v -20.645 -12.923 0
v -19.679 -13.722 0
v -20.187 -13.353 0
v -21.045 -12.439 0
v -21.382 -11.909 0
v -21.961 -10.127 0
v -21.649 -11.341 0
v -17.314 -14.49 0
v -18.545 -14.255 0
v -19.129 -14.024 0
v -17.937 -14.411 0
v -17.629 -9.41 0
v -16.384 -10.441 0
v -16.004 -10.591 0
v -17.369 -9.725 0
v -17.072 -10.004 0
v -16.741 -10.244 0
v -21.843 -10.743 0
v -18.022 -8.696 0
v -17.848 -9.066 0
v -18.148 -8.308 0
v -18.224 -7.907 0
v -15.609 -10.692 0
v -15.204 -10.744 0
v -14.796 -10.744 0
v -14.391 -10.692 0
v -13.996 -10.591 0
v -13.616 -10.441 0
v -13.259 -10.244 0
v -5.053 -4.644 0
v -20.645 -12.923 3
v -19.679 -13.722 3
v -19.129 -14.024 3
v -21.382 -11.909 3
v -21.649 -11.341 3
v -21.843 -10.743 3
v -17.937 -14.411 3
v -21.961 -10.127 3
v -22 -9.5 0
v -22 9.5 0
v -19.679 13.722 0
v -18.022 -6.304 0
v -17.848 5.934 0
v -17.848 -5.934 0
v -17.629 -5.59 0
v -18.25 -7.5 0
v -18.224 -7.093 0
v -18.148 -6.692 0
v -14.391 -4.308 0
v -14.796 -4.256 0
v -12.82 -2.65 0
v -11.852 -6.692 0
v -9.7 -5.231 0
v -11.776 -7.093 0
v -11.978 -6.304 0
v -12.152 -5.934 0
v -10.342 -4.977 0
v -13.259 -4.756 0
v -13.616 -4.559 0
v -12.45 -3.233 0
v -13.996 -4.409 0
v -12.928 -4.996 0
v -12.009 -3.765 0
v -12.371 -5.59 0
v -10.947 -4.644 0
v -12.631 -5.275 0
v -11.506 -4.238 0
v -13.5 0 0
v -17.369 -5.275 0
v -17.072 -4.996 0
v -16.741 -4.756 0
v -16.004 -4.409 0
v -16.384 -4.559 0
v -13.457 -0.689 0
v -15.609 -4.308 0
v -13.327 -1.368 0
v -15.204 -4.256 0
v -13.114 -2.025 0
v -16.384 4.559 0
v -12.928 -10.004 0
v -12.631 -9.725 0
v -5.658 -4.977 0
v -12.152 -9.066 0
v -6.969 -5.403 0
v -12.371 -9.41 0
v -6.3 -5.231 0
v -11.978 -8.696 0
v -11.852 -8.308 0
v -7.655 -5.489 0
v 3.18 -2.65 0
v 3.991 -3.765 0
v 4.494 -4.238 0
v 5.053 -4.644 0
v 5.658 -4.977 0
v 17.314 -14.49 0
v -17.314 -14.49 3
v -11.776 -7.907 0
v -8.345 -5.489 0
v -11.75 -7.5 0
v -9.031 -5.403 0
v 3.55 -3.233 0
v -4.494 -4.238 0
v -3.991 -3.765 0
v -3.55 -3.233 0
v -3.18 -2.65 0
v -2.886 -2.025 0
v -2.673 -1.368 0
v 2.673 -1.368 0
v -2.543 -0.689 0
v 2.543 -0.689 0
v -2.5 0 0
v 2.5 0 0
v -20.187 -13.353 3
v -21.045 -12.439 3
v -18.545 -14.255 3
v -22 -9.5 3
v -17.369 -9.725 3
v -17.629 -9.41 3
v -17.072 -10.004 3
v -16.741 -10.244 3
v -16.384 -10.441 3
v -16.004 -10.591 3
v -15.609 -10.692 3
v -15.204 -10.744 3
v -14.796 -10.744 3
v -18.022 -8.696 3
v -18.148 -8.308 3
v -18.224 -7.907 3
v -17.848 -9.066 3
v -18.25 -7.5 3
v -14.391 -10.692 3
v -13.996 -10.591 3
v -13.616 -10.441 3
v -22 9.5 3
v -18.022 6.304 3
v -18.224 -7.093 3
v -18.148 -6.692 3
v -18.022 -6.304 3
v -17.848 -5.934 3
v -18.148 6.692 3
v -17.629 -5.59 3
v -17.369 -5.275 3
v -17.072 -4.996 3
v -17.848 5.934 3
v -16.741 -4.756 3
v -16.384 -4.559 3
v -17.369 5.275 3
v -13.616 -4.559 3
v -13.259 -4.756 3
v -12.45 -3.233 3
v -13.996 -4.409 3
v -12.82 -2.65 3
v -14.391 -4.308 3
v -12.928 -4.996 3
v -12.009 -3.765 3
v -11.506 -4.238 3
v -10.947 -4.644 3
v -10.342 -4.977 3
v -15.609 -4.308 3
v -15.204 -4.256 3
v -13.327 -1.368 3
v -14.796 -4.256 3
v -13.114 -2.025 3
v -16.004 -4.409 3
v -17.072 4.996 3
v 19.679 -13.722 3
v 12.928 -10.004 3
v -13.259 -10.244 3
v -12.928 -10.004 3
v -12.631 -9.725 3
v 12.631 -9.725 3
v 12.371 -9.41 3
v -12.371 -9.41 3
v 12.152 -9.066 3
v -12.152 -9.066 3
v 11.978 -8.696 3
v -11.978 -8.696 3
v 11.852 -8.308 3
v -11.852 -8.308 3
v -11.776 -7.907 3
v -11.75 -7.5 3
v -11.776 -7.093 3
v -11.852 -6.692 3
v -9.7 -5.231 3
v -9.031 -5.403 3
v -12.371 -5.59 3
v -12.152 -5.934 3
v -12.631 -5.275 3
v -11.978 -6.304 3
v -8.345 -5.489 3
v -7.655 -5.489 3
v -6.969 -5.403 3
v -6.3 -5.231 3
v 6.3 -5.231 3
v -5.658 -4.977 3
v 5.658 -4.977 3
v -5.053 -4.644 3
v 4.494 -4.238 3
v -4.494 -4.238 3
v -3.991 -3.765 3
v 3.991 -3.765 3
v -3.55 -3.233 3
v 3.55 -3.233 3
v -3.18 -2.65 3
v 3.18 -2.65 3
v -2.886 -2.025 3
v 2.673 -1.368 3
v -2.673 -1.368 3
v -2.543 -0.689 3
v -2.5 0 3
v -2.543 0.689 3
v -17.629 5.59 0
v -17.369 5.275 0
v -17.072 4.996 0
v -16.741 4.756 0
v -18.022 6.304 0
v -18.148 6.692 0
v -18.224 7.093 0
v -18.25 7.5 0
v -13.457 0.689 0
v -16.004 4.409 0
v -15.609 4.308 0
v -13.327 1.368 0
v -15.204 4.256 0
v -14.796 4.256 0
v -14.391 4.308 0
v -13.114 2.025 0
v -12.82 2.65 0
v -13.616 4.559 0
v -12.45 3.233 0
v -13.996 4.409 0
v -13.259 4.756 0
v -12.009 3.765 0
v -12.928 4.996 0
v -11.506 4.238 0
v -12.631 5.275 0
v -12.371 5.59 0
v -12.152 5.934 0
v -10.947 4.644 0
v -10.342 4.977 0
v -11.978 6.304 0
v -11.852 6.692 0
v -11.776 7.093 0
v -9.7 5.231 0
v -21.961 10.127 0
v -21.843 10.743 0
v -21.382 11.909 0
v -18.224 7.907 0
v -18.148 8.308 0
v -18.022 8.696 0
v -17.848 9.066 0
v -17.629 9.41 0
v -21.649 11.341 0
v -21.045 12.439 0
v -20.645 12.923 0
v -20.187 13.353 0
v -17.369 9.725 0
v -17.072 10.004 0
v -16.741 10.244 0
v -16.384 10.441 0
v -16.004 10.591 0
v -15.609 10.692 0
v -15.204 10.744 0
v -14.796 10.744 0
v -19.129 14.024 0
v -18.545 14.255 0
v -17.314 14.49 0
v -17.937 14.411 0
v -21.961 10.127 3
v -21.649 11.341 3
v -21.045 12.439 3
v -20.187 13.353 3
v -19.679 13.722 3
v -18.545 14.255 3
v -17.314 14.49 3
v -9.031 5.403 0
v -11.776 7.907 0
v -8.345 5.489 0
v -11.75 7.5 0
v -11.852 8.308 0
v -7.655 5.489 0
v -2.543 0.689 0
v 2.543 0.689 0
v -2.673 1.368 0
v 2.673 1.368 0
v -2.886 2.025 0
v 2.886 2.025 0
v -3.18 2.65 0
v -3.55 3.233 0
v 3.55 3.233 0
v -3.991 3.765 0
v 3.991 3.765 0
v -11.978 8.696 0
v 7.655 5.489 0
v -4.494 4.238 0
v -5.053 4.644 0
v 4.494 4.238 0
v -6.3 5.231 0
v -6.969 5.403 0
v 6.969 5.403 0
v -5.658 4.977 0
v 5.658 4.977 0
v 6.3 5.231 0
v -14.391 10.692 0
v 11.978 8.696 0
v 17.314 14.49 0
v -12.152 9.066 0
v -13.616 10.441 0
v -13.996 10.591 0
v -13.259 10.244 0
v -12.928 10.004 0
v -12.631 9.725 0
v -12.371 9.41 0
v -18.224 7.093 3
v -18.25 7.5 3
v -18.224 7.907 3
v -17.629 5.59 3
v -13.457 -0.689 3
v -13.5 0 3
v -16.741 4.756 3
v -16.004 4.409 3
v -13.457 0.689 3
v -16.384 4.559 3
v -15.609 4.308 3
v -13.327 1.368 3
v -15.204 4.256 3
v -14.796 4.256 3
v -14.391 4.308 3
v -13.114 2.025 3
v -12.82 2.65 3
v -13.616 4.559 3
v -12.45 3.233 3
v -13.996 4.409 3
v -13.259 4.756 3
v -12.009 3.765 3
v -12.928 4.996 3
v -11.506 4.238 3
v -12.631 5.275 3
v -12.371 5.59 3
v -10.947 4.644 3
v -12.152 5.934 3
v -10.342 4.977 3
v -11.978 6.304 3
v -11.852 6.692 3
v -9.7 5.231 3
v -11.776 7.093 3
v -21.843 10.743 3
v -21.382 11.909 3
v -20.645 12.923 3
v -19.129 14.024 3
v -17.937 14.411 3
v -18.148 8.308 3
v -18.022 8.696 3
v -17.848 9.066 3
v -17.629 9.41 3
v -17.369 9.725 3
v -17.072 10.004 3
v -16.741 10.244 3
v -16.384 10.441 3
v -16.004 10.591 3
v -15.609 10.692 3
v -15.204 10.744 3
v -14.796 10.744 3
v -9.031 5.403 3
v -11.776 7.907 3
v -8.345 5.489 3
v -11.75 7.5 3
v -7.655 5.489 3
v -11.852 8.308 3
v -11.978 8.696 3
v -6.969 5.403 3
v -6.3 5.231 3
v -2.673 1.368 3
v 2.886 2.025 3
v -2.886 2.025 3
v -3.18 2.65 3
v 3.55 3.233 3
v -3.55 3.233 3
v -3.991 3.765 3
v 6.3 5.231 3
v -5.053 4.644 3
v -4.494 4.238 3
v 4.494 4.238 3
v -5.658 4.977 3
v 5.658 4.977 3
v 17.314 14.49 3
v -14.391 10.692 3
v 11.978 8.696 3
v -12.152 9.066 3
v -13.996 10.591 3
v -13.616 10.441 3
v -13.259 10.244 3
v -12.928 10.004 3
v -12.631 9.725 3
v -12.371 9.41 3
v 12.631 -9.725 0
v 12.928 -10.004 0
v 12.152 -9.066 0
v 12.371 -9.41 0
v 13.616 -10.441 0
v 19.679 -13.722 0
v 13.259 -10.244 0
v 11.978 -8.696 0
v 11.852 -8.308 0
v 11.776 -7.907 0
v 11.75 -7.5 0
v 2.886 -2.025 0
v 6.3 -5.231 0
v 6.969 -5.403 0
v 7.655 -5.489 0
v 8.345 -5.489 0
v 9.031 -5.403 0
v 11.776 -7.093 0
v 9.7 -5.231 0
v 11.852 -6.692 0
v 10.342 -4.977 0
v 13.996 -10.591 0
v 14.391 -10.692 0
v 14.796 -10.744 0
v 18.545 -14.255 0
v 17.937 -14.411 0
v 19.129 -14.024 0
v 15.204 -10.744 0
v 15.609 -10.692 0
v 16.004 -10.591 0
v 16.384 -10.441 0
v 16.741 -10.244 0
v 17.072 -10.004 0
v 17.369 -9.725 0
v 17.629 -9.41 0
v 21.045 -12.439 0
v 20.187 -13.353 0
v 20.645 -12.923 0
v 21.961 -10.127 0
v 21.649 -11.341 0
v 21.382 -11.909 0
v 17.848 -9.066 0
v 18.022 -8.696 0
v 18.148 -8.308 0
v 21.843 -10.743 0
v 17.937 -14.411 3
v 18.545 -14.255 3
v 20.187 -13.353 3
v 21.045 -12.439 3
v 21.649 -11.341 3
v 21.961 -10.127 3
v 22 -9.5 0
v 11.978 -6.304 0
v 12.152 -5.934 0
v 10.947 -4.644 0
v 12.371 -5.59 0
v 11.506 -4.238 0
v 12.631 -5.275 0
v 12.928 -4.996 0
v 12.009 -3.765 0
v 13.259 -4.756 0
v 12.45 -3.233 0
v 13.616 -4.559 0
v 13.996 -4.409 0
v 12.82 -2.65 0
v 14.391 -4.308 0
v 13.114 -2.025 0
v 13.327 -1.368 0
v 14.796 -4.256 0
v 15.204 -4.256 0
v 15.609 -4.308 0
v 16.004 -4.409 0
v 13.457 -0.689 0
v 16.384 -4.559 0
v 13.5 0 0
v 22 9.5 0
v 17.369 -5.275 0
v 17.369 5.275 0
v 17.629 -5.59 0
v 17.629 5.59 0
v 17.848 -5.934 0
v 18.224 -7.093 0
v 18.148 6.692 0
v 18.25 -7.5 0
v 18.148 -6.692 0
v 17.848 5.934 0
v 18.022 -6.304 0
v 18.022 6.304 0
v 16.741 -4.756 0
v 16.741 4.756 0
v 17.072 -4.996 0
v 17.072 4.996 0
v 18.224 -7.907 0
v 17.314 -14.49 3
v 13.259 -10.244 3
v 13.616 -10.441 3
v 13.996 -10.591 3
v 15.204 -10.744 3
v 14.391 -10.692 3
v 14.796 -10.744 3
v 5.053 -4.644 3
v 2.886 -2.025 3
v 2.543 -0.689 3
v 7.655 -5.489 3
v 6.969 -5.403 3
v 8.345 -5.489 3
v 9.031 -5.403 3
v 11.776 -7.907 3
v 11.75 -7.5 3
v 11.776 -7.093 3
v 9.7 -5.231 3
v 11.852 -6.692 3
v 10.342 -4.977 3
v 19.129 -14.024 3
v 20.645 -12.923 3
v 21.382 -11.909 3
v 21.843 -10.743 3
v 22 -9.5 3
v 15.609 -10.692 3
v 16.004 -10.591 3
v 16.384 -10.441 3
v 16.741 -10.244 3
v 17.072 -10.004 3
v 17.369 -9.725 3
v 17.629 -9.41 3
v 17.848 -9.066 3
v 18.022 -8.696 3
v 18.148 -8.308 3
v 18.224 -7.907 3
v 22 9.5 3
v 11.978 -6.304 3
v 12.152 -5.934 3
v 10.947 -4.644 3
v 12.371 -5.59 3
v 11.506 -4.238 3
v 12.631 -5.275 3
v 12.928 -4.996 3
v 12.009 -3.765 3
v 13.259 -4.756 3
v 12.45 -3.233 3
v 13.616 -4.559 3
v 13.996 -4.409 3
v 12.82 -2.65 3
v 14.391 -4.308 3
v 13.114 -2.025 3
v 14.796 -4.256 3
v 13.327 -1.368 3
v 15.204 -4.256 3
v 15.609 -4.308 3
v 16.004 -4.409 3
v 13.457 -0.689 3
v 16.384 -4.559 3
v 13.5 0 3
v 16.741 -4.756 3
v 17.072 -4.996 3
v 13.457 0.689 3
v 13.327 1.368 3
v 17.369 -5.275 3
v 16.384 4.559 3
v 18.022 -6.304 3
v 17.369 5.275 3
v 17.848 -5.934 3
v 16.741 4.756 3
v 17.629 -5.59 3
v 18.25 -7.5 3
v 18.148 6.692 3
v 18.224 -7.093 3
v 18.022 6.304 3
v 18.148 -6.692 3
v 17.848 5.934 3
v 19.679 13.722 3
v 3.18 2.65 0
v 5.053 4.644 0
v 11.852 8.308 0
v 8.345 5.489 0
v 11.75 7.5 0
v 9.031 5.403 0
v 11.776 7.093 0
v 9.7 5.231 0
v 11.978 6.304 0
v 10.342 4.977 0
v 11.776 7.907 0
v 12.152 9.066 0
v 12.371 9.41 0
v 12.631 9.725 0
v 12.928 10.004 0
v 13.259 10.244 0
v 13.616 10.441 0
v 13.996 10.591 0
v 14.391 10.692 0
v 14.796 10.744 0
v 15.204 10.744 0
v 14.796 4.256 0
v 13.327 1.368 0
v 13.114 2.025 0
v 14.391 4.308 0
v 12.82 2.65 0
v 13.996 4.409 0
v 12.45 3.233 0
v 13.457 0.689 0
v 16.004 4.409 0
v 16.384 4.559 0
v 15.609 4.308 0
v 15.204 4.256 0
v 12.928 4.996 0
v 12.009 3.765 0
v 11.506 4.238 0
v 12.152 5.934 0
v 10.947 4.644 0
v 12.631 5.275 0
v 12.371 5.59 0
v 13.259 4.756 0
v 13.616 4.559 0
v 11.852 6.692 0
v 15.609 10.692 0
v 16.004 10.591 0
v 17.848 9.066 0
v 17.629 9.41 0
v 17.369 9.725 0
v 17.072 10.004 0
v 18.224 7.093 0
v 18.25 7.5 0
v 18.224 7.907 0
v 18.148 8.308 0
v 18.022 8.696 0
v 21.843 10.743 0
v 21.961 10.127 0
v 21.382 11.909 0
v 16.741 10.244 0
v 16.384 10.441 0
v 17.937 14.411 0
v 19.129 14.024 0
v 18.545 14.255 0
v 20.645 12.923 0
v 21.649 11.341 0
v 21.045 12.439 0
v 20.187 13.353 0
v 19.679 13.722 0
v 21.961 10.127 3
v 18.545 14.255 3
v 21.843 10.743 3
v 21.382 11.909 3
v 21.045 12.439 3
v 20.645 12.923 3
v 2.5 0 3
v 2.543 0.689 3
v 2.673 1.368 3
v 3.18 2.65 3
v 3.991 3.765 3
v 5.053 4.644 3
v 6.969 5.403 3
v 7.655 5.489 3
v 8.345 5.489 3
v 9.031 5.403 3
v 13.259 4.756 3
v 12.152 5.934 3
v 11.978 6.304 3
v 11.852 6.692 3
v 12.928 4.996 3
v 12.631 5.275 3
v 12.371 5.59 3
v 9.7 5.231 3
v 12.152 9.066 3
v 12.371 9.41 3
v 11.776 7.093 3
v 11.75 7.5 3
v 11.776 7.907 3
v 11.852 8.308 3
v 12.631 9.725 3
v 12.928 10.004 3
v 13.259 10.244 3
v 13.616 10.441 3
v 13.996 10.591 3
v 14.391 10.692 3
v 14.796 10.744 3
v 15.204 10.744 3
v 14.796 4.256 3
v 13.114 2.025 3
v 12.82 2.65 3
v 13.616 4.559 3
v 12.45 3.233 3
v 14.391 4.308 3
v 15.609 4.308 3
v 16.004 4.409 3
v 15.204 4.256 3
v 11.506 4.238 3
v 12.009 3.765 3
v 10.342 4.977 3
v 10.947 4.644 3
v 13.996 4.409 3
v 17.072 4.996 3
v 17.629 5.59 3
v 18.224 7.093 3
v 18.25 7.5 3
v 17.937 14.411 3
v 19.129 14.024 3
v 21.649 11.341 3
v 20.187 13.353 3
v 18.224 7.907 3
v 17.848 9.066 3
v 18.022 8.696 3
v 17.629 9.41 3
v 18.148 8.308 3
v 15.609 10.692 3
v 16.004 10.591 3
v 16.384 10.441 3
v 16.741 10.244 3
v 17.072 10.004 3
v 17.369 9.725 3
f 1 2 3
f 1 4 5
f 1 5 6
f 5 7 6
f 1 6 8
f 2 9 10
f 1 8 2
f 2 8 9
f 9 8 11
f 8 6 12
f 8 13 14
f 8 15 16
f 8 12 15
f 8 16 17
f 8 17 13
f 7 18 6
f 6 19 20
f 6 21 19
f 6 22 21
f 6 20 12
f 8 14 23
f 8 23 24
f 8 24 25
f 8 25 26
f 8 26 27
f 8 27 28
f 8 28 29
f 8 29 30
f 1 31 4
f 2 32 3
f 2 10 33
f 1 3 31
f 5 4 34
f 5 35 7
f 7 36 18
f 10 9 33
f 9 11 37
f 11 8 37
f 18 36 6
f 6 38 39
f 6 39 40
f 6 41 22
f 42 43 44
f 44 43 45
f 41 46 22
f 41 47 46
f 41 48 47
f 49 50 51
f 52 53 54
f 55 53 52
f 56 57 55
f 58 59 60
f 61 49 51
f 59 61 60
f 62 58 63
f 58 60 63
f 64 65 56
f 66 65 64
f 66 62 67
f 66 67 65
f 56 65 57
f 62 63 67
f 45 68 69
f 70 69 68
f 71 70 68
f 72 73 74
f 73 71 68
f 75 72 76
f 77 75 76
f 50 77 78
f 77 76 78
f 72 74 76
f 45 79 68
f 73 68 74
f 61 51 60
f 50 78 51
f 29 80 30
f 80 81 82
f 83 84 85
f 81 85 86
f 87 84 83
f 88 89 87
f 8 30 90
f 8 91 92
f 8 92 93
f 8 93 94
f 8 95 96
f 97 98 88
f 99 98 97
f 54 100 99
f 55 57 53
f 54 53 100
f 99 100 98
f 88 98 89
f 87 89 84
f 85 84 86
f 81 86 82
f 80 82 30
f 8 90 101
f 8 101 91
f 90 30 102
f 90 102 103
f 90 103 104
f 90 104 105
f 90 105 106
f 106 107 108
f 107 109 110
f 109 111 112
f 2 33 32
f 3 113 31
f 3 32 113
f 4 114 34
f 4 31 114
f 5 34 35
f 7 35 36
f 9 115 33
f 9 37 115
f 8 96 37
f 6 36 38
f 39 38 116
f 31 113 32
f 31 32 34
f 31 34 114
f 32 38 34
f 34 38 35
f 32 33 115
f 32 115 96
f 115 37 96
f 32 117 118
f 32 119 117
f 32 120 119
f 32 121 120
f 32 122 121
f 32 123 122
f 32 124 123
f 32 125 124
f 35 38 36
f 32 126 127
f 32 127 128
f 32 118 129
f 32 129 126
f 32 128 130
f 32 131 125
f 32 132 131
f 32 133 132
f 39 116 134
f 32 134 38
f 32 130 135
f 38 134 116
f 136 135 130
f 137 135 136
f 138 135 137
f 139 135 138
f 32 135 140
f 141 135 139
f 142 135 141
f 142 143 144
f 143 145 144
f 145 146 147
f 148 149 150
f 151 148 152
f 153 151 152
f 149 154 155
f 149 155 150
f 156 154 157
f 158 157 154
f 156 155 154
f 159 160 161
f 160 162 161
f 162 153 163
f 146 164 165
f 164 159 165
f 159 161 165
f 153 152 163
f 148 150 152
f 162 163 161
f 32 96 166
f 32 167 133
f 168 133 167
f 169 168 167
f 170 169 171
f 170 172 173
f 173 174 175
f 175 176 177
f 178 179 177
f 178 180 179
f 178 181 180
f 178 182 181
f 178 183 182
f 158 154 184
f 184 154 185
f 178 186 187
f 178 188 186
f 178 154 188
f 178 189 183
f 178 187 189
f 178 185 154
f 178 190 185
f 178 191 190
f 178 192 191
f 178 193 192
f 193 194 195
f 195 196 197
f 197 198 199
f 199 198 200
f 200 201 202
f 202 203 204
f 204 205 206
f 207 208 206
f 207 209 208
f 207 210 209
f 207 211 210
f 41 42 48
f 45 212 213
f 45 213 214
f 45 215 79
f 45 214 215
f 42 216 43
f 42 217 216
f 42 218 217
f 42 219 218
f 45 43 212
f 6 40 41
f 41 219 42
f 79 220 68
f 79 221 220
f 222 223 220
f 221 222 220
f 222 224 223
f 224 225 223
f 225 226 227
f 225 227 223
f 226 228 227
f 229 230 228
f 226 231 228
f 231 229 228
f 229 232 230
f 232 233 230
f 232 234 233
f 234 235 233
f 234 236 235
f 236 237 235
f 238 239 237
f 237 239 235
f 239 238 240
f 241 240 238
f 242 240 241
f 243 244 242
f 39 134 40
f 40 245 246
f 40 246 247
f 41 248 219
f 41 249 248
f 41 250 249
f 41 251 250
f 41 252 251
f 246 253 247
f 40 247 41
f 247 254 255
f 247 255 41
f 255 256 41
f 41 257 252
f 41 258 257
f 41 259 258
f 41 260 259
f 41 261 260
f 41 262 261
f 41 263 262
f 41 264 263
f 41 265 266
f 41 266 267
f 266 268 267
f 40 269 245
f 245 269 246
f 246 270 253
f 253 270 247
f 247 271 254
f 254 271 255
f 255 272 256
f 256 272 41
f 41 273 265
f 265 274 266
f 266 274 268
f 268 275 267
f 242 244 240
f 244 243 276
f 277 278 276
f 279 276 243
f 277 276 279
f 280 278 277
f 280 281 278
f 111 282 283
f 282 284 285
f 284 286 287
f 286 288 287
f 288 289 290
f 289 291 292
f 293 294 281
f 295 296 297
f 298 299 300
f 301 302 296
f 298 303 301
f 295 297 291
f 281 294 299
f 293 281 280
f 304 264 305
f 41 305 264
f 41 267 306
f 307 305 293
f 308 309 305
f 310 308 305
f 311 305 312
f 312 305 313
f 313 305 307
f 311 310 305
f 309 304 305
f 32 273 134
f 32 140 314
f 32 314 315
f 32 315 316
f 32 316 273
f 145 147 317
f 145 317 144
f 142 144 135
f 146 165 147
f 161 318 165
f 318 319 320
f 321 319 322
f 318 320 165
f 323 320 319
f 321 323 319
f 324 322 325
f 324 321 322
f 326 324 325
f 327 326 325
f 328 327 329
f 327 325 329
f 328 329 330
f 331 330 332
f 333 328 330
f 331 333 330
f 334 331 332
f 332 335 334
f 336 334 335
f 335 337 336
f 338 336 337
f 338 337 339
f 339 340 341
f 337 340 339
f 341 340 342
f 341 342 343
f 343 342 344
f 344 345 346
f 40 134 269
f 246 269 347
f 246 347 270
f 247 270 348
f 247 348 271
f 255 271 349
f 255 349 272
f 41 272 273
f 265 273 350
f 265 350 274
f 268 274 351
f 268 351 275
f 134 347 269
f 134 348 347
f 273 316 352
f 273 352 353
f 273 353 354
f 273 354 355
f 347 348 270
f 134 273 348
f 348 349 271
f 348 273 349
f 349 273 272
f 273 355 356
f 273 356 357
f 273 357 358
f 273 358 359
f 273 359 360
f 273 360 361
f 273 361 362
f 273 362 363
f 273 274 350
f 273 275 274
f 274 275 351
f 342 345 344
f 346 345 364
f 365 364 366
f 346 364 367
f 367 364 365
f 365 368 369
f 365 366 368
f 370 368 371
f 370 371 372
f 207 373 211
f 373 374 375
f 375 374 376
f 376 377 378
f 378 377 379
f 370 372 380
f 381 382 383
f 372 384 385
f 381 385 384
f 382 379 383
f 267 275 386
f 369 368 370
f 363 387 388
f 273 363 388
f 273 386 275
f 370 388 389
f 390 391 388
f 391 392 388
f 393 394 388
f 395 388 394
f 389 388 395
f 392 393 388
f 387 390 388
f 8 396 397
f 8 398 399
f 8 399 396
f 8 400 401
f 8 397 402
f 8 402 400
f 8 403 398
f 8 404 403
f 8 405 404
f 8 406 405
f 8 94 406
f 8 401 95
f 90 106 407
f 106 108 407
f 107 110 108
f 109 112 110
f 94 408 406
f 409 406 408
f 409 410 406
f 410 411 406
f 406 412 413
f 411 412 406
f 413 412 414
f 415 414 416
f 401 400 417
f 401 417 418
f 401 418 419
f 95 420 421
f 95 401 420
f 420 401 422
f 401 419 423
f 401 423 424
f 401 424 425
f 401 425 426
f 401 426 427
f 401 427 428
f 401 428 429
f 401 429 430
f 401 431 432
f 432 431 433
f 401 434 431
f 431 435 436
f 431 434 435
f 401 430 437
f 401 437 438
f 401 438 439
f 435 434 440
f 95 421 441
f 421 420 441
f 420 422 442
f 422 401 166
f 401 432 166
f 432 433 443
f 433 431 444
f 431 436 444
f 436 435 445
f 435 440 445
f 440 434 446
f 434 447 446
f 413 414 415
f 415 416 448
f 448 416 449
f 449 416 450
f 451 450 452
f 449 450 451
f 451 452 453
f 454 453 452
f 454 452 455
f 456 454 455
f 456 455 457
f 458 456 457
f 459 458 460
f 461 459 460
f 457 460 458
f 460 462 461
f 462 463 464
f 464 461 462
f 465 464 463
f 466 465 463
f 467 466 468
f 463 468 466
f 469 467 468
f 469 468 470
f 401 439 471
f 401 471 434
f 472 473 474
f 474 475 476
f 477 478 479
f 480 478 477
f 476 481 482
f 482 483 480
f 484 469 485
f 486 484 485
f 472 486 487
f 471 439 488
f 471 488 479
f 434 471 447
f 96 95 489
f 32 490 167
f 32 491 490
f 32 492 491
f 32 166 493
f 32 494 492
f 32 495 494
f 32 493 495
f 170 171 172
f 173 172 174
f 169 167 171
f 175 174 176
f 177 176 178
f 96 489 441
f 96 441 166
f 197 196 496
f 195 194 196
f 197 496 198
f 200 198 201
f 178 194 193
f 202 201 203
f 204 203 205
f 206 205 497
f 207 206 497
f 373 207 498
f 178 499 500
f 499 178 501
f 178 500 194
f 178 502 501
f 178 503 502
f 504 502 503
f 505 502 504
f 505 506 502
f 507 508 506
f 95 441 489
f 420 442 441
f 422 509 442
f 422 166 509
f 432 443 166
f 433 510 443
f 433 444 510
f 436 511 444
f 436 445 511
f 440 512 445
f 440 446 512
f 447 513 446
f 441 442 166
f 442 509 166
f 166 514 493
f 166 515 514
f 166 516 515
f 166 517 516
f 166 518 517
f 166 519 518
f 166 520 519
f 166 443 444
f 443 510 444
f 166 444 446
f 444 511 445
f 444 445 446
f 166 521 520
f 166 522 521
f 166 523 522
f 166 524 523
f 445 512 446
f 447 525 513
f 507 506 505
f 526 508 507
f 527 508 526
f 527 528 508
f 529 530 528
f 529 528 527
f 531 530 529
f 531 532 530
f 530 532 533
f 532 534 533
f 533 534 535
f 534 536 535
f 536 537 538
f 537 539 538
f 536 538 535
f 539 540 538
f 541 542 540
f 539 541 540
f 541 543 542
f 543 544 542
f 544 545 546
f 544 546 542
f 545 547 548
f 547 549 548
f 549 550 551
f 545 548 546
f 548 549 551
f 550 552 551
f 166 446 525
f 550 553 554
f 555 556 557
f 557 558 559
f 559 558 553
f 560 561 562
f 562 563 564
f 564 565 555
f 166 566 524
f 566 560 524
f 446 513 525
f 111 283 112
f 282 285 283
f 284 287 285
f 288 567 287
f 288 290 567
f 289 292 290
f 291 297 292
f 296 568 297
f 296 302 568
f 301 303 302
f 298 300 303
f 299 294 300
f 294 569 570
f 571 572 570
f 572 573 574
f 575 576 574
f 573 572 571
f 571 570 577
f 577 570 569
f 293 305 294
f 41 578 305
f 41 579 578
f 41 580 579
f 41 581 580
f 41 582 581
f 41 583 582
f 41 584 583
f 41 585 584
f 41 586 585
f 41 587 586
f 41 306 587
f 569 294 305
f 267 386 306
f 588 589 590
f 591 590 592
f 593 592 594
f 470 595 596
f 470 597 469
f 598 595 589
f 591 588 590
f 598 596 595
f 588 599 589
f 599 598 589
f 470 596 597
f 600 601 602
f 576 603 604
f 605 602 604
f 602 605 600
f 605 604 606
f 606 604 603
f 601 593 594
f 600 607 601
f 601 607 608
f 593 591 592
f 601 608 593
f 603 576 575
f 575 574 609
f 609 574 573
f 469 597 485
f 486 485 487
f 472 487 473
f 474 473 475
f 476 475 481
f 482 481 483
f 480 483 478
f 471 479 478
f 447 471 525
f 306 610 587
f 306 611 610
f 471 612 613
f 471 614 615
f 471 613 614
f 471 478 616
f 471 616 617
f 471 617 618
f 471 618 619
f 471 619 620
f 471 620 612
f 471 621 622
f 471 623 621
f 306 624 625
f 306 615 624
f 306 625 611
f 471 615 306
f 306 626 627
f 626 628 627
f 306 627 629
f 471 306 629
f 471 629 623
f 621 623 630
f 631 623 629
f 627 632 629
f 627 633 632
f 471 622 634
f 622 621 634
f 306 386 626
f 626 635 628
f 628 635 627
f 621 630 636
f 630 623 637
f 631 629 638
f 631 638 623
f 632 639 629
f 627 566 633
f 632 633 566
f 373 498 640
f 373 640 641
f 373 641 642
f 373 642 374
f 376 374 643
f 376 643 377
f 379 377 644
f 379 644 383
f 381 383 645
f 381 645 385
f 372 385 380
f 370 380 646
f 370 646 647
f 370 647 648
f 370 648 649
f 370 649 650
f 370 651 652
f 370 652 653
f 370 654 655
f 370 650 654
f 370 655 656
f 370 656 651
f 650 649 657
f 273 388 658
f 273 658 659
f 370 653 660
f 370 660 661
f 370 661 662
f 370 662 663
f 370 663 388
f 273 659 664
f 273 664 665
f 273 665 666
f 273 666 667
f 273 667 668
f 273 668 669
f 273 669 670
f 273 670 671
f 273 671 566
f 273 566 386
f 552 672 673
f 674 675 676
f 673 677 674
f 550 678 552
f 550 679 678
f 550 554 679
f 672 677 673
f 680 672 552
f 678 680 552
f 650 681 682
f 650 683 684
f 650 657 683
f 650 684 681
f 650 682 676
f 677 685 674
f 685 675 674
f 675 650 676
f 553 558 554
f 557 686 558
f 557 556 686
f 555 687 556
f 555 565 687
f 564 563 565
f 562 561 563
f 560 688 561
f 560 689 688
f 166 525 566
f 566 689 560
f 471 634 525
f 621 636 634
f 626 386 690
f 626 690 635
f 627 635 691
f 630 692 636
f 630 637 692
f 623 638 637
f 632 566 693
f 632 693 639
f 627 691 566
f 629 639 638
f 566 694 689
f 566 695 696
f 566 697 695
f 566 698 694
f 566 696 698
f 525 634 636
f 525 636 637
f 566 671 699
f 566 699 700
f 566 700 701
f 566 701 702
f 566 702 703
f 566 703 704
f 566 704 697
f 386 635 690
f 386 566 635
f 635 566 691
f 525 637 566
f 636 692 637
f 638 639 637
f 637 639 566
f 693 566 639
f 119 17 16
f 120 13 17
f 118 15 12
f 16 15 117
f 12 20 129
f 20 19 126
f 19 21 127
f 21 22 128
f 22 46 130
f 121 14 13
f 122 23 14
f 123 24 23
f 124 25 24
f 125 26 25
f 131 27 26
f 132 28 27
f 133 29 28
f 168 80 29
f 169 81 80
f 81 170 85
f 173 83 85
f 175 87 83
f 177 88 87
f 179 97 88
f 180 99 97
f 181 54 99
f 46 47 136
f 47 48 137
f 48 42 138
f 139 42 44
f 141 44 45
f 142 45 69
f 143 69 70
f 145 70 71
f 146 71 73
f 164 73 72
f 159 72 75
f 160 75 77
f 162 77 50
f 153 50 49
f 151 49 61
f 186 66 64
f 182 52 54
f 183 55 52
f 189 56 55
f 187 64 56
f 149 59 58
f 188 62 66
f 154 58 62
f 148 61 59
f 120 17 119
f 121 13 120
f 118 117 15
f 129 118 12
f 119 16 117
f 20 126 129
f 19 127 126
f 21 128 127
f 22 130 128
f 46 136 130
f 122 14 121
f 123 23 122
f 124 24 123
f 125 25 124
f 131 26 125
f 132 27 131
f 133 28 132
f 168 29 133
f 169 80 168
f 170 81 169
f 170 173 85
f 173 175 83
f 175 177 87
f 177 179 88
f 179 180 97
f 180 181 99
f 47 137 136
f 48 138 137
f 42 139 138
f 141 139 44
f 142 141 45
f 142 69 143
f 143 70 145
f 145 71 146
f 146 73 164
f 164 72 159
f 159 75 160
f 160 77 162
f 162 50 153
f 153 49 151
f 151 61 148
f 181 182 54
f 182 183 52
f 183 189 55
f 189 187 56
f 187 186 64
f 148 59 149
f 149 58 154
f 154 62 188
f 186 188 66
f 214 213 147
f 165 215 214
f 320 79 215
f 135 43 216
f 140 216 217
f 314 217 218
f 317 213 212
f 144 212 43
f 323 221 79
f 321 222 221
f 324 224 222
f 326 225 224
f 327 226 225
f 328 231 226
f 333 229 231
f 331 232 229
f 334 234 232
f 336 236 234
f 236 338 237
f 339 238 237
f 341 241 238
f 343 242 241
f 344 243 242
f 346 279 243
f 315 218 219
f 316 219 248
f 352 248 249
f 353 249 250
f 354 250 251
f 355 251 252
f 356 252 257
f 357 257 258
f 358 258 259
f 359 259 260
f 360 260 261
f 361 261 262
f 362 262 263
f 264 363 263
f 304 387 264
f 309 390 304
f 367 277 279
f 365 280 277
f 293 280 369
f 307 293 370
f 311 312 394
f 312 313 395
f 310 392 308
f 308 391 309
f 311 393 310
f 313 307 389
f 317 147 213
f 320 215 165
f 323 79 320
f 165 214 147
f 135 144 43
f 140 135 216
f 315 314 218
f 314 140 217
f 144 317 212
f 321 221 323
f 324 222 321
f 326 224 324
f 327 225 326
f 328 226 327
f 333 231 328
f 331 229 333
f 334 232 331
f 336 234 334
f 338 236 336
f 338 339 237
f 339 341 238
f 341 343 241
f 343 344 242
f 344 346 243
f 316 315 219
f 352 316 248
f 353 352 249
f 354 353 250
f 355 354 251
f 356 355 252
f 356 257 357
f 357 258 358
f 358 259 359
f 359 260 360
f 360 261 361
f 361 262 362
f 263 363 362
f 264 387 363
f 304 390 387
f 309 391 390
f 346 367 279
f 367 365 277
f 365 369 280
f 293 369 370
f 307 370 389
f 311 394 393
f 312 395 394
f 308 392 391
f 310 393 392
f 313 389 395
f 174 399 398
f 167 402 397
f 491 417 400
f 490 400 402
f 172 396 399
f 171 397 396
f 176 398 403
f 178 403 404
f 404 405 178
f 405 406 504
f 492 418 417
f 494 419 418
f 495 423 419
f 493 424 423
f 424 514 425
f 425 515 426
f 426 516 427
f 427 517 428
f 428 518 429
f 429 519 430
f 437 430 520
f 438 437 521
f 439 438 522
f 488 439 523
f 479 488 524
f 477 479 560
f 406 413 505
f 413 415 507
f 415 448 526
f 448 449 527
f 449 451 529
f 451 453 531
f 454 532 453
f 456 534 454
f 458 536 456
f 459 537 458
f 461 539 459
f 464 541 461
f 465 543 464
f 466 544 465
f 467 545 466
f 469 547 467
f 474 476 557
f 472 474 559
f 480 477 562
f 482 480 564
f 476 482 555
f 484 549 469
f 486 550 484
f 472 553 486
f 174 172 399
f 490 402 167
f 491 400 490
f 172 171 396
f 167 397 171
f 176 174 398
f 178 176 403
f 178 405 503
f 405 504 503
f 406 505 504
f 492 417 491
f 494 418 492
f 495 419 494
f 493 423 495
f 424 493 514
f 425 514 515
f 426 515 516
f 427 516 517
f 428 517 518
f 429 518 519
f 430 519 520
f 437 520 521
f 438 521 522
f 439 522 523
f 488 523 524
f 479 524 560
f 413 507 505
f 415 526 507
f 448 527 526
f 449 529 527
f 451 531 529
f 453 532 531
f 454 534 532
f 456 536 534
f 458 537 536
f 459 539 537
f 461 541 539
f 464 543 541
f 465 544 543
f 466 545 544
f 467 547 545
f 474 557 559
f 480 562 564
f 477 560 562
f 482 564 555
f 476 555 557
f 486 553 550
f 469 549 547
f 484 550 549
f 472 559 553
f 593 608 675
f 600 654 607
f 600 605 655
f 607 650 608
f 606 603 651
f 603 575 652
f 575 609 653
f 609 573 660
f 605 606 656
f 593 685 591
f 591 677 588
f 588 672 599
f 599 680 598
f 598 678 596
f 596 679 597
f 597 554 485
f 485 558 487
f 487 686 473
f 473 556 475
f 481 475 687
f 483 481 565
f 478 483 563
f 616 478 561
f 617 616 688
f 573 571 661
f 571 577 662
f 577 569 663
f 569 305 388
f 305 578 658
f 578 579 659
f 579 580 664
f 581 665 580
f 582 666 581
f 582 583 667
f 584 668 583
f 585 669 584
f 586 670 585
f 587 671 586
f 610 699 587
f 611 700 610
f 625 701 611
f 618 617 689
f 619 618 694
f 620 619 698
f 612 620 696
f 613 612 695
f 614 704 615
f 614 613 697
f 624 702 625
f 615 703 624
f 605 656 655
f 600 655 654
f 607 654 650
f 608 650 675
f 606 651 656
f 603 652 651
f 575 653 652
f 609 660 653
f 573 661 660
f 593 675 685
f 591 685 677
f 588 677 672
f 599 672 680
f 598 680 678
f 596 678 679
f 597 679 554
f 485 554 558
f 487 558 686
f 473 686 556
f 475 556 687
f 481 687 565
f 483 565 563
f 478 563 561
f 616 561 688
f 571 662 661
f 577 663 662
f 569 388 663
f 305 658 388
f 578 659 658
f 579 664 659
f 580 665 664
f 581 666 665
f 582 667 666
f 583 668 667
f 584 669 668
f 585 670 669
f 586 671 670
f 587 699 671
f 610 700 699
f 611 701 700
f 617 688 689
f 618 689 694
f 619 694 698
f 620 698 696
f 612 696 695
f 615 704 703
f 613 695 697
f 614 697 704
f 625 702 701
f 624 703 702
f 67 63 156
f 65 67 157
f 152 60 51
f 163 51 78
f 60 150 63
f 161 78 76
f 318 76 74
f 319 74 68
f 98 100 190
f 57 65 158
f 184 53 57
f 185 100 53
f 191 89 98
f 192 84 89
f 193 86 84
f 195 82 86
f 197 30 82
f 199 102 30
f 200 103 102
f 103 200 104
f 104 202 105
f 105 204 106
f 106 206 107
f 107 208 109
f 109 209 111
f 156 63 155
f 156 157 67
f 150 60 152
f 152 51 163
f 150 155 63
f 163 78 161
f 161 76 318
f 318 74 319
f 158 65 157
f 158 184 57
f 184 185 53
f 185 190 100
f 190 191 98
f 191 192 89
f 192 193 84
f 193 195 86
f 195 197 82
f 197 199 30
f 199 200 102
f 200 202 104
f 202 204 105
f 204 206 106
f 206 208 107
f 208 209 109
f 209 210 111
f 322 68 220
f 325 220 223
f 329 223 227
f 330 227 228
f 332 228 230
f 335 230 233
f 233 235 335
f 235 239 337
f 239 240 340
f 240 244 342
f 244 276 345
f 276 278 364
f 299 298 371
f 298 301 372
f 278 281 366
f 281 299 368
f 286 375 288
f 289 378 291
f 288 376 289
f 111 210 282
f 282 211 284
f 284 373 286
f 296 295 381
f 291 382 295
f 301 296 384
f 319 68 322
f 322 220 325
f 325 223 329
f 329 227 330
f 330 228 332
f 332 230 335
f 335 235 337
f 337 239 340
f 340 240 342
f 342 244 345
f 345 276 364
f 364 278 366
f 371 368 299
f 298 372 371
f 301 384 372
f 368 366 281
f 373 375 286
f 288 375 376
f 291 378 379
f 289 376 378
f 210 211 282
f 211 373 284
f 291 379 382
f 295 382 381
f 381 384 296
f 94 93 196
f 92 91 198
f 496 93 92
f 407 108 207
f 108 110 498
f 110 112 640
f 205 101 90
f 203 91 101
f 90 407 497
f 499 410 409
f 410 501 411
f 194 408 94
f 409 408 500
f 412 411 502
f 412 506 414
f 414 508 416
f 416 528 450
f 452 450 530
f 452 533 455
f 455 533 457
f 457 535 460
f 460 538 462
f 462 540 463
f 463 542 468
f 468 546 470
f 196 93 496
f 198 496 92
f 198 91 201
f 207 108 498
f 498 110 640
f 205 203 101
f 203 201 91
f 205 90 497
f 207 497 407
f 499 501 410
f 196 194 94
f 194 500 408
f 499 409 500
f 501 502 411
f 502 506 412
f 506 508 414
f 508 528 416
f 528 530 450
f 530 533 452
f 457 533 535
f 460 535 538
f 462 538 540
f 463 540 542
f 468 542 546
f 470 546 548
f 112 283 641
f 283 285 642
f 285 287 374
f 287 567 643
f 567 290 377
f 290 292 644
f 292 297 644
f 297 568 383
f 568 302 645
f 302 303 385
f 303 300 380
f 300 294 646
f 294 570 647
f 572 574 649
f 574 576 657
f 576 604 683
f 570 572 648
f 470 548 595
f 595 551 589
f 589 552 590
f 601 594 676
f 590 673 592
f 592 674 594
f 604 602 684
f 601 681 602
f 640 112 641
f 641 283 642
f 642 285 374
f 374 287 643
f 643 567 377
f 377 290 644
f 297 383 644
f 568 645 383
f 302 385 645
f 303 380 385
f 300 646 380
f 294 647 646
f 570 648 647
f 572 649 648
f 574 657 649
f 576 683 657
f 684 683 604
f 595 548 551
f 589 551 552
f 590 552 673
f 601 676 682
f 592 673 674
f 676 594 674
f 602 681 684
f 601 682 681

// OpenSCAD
$fn = 50;

difference() {
	union() {
		hull() {
			translate(v = [-17.0, 9.5, 0]) {
				cylinder(h = 3, r = 5);
			}
			translate(v = [17.0, 9.5, 0]) {
				cylinder(h = 3, r = 5);
			}
			translate(v = [-17.0, -9.5, 0]) {
				cylinder(h = 3, r = 5);
			}
			translate(v = [17.0, -9.5, 0]) {
				cylinder(h = 3, r = 5);
			}
		}
	}
	union() {
		translate(v = [-15.0, -7.5, -100.0]) {
			cylinder(h = 200, r = 3.25);
		}
		translate(v = [-15.0, 7.5, -100.0]) {
			cylinder(h = 200, r = 3.25);
		}
		translate(v = [15.0, -7.5, -100.0]) {
			cylinder(h = 200, r = 3.25);
		}
		translate(v = [15.0, 7.5, -100.0]) {
			cylinder(h = 200, r = 3.25);
		}
		translate(v = [-15.0, -7.5, -100.0]) {
			cylinder(h = 200, r = 1.8);
		}
		translate(v = [-15.0, 7.5, -100.0]) {
			cylinder(h = 200, r = 1.8);
		}
		translate(v = [15.0, -7.5, -100.0]) {
			cylinder(h = 200, r = 1.8);
		}
		translate(v = [15.0, 7.5, -100.0]) {
			cylinder(h = 200, r = 1.8);
		}
		translate(v = [-8.0, 0, 0.0]) {
			cylinder(h = 3, r = 5.5);
		}
		translate(v = [8.0, 0, 0.0]) {
			cylinder(h = 3, r = 5.5);
		}
	}
}
